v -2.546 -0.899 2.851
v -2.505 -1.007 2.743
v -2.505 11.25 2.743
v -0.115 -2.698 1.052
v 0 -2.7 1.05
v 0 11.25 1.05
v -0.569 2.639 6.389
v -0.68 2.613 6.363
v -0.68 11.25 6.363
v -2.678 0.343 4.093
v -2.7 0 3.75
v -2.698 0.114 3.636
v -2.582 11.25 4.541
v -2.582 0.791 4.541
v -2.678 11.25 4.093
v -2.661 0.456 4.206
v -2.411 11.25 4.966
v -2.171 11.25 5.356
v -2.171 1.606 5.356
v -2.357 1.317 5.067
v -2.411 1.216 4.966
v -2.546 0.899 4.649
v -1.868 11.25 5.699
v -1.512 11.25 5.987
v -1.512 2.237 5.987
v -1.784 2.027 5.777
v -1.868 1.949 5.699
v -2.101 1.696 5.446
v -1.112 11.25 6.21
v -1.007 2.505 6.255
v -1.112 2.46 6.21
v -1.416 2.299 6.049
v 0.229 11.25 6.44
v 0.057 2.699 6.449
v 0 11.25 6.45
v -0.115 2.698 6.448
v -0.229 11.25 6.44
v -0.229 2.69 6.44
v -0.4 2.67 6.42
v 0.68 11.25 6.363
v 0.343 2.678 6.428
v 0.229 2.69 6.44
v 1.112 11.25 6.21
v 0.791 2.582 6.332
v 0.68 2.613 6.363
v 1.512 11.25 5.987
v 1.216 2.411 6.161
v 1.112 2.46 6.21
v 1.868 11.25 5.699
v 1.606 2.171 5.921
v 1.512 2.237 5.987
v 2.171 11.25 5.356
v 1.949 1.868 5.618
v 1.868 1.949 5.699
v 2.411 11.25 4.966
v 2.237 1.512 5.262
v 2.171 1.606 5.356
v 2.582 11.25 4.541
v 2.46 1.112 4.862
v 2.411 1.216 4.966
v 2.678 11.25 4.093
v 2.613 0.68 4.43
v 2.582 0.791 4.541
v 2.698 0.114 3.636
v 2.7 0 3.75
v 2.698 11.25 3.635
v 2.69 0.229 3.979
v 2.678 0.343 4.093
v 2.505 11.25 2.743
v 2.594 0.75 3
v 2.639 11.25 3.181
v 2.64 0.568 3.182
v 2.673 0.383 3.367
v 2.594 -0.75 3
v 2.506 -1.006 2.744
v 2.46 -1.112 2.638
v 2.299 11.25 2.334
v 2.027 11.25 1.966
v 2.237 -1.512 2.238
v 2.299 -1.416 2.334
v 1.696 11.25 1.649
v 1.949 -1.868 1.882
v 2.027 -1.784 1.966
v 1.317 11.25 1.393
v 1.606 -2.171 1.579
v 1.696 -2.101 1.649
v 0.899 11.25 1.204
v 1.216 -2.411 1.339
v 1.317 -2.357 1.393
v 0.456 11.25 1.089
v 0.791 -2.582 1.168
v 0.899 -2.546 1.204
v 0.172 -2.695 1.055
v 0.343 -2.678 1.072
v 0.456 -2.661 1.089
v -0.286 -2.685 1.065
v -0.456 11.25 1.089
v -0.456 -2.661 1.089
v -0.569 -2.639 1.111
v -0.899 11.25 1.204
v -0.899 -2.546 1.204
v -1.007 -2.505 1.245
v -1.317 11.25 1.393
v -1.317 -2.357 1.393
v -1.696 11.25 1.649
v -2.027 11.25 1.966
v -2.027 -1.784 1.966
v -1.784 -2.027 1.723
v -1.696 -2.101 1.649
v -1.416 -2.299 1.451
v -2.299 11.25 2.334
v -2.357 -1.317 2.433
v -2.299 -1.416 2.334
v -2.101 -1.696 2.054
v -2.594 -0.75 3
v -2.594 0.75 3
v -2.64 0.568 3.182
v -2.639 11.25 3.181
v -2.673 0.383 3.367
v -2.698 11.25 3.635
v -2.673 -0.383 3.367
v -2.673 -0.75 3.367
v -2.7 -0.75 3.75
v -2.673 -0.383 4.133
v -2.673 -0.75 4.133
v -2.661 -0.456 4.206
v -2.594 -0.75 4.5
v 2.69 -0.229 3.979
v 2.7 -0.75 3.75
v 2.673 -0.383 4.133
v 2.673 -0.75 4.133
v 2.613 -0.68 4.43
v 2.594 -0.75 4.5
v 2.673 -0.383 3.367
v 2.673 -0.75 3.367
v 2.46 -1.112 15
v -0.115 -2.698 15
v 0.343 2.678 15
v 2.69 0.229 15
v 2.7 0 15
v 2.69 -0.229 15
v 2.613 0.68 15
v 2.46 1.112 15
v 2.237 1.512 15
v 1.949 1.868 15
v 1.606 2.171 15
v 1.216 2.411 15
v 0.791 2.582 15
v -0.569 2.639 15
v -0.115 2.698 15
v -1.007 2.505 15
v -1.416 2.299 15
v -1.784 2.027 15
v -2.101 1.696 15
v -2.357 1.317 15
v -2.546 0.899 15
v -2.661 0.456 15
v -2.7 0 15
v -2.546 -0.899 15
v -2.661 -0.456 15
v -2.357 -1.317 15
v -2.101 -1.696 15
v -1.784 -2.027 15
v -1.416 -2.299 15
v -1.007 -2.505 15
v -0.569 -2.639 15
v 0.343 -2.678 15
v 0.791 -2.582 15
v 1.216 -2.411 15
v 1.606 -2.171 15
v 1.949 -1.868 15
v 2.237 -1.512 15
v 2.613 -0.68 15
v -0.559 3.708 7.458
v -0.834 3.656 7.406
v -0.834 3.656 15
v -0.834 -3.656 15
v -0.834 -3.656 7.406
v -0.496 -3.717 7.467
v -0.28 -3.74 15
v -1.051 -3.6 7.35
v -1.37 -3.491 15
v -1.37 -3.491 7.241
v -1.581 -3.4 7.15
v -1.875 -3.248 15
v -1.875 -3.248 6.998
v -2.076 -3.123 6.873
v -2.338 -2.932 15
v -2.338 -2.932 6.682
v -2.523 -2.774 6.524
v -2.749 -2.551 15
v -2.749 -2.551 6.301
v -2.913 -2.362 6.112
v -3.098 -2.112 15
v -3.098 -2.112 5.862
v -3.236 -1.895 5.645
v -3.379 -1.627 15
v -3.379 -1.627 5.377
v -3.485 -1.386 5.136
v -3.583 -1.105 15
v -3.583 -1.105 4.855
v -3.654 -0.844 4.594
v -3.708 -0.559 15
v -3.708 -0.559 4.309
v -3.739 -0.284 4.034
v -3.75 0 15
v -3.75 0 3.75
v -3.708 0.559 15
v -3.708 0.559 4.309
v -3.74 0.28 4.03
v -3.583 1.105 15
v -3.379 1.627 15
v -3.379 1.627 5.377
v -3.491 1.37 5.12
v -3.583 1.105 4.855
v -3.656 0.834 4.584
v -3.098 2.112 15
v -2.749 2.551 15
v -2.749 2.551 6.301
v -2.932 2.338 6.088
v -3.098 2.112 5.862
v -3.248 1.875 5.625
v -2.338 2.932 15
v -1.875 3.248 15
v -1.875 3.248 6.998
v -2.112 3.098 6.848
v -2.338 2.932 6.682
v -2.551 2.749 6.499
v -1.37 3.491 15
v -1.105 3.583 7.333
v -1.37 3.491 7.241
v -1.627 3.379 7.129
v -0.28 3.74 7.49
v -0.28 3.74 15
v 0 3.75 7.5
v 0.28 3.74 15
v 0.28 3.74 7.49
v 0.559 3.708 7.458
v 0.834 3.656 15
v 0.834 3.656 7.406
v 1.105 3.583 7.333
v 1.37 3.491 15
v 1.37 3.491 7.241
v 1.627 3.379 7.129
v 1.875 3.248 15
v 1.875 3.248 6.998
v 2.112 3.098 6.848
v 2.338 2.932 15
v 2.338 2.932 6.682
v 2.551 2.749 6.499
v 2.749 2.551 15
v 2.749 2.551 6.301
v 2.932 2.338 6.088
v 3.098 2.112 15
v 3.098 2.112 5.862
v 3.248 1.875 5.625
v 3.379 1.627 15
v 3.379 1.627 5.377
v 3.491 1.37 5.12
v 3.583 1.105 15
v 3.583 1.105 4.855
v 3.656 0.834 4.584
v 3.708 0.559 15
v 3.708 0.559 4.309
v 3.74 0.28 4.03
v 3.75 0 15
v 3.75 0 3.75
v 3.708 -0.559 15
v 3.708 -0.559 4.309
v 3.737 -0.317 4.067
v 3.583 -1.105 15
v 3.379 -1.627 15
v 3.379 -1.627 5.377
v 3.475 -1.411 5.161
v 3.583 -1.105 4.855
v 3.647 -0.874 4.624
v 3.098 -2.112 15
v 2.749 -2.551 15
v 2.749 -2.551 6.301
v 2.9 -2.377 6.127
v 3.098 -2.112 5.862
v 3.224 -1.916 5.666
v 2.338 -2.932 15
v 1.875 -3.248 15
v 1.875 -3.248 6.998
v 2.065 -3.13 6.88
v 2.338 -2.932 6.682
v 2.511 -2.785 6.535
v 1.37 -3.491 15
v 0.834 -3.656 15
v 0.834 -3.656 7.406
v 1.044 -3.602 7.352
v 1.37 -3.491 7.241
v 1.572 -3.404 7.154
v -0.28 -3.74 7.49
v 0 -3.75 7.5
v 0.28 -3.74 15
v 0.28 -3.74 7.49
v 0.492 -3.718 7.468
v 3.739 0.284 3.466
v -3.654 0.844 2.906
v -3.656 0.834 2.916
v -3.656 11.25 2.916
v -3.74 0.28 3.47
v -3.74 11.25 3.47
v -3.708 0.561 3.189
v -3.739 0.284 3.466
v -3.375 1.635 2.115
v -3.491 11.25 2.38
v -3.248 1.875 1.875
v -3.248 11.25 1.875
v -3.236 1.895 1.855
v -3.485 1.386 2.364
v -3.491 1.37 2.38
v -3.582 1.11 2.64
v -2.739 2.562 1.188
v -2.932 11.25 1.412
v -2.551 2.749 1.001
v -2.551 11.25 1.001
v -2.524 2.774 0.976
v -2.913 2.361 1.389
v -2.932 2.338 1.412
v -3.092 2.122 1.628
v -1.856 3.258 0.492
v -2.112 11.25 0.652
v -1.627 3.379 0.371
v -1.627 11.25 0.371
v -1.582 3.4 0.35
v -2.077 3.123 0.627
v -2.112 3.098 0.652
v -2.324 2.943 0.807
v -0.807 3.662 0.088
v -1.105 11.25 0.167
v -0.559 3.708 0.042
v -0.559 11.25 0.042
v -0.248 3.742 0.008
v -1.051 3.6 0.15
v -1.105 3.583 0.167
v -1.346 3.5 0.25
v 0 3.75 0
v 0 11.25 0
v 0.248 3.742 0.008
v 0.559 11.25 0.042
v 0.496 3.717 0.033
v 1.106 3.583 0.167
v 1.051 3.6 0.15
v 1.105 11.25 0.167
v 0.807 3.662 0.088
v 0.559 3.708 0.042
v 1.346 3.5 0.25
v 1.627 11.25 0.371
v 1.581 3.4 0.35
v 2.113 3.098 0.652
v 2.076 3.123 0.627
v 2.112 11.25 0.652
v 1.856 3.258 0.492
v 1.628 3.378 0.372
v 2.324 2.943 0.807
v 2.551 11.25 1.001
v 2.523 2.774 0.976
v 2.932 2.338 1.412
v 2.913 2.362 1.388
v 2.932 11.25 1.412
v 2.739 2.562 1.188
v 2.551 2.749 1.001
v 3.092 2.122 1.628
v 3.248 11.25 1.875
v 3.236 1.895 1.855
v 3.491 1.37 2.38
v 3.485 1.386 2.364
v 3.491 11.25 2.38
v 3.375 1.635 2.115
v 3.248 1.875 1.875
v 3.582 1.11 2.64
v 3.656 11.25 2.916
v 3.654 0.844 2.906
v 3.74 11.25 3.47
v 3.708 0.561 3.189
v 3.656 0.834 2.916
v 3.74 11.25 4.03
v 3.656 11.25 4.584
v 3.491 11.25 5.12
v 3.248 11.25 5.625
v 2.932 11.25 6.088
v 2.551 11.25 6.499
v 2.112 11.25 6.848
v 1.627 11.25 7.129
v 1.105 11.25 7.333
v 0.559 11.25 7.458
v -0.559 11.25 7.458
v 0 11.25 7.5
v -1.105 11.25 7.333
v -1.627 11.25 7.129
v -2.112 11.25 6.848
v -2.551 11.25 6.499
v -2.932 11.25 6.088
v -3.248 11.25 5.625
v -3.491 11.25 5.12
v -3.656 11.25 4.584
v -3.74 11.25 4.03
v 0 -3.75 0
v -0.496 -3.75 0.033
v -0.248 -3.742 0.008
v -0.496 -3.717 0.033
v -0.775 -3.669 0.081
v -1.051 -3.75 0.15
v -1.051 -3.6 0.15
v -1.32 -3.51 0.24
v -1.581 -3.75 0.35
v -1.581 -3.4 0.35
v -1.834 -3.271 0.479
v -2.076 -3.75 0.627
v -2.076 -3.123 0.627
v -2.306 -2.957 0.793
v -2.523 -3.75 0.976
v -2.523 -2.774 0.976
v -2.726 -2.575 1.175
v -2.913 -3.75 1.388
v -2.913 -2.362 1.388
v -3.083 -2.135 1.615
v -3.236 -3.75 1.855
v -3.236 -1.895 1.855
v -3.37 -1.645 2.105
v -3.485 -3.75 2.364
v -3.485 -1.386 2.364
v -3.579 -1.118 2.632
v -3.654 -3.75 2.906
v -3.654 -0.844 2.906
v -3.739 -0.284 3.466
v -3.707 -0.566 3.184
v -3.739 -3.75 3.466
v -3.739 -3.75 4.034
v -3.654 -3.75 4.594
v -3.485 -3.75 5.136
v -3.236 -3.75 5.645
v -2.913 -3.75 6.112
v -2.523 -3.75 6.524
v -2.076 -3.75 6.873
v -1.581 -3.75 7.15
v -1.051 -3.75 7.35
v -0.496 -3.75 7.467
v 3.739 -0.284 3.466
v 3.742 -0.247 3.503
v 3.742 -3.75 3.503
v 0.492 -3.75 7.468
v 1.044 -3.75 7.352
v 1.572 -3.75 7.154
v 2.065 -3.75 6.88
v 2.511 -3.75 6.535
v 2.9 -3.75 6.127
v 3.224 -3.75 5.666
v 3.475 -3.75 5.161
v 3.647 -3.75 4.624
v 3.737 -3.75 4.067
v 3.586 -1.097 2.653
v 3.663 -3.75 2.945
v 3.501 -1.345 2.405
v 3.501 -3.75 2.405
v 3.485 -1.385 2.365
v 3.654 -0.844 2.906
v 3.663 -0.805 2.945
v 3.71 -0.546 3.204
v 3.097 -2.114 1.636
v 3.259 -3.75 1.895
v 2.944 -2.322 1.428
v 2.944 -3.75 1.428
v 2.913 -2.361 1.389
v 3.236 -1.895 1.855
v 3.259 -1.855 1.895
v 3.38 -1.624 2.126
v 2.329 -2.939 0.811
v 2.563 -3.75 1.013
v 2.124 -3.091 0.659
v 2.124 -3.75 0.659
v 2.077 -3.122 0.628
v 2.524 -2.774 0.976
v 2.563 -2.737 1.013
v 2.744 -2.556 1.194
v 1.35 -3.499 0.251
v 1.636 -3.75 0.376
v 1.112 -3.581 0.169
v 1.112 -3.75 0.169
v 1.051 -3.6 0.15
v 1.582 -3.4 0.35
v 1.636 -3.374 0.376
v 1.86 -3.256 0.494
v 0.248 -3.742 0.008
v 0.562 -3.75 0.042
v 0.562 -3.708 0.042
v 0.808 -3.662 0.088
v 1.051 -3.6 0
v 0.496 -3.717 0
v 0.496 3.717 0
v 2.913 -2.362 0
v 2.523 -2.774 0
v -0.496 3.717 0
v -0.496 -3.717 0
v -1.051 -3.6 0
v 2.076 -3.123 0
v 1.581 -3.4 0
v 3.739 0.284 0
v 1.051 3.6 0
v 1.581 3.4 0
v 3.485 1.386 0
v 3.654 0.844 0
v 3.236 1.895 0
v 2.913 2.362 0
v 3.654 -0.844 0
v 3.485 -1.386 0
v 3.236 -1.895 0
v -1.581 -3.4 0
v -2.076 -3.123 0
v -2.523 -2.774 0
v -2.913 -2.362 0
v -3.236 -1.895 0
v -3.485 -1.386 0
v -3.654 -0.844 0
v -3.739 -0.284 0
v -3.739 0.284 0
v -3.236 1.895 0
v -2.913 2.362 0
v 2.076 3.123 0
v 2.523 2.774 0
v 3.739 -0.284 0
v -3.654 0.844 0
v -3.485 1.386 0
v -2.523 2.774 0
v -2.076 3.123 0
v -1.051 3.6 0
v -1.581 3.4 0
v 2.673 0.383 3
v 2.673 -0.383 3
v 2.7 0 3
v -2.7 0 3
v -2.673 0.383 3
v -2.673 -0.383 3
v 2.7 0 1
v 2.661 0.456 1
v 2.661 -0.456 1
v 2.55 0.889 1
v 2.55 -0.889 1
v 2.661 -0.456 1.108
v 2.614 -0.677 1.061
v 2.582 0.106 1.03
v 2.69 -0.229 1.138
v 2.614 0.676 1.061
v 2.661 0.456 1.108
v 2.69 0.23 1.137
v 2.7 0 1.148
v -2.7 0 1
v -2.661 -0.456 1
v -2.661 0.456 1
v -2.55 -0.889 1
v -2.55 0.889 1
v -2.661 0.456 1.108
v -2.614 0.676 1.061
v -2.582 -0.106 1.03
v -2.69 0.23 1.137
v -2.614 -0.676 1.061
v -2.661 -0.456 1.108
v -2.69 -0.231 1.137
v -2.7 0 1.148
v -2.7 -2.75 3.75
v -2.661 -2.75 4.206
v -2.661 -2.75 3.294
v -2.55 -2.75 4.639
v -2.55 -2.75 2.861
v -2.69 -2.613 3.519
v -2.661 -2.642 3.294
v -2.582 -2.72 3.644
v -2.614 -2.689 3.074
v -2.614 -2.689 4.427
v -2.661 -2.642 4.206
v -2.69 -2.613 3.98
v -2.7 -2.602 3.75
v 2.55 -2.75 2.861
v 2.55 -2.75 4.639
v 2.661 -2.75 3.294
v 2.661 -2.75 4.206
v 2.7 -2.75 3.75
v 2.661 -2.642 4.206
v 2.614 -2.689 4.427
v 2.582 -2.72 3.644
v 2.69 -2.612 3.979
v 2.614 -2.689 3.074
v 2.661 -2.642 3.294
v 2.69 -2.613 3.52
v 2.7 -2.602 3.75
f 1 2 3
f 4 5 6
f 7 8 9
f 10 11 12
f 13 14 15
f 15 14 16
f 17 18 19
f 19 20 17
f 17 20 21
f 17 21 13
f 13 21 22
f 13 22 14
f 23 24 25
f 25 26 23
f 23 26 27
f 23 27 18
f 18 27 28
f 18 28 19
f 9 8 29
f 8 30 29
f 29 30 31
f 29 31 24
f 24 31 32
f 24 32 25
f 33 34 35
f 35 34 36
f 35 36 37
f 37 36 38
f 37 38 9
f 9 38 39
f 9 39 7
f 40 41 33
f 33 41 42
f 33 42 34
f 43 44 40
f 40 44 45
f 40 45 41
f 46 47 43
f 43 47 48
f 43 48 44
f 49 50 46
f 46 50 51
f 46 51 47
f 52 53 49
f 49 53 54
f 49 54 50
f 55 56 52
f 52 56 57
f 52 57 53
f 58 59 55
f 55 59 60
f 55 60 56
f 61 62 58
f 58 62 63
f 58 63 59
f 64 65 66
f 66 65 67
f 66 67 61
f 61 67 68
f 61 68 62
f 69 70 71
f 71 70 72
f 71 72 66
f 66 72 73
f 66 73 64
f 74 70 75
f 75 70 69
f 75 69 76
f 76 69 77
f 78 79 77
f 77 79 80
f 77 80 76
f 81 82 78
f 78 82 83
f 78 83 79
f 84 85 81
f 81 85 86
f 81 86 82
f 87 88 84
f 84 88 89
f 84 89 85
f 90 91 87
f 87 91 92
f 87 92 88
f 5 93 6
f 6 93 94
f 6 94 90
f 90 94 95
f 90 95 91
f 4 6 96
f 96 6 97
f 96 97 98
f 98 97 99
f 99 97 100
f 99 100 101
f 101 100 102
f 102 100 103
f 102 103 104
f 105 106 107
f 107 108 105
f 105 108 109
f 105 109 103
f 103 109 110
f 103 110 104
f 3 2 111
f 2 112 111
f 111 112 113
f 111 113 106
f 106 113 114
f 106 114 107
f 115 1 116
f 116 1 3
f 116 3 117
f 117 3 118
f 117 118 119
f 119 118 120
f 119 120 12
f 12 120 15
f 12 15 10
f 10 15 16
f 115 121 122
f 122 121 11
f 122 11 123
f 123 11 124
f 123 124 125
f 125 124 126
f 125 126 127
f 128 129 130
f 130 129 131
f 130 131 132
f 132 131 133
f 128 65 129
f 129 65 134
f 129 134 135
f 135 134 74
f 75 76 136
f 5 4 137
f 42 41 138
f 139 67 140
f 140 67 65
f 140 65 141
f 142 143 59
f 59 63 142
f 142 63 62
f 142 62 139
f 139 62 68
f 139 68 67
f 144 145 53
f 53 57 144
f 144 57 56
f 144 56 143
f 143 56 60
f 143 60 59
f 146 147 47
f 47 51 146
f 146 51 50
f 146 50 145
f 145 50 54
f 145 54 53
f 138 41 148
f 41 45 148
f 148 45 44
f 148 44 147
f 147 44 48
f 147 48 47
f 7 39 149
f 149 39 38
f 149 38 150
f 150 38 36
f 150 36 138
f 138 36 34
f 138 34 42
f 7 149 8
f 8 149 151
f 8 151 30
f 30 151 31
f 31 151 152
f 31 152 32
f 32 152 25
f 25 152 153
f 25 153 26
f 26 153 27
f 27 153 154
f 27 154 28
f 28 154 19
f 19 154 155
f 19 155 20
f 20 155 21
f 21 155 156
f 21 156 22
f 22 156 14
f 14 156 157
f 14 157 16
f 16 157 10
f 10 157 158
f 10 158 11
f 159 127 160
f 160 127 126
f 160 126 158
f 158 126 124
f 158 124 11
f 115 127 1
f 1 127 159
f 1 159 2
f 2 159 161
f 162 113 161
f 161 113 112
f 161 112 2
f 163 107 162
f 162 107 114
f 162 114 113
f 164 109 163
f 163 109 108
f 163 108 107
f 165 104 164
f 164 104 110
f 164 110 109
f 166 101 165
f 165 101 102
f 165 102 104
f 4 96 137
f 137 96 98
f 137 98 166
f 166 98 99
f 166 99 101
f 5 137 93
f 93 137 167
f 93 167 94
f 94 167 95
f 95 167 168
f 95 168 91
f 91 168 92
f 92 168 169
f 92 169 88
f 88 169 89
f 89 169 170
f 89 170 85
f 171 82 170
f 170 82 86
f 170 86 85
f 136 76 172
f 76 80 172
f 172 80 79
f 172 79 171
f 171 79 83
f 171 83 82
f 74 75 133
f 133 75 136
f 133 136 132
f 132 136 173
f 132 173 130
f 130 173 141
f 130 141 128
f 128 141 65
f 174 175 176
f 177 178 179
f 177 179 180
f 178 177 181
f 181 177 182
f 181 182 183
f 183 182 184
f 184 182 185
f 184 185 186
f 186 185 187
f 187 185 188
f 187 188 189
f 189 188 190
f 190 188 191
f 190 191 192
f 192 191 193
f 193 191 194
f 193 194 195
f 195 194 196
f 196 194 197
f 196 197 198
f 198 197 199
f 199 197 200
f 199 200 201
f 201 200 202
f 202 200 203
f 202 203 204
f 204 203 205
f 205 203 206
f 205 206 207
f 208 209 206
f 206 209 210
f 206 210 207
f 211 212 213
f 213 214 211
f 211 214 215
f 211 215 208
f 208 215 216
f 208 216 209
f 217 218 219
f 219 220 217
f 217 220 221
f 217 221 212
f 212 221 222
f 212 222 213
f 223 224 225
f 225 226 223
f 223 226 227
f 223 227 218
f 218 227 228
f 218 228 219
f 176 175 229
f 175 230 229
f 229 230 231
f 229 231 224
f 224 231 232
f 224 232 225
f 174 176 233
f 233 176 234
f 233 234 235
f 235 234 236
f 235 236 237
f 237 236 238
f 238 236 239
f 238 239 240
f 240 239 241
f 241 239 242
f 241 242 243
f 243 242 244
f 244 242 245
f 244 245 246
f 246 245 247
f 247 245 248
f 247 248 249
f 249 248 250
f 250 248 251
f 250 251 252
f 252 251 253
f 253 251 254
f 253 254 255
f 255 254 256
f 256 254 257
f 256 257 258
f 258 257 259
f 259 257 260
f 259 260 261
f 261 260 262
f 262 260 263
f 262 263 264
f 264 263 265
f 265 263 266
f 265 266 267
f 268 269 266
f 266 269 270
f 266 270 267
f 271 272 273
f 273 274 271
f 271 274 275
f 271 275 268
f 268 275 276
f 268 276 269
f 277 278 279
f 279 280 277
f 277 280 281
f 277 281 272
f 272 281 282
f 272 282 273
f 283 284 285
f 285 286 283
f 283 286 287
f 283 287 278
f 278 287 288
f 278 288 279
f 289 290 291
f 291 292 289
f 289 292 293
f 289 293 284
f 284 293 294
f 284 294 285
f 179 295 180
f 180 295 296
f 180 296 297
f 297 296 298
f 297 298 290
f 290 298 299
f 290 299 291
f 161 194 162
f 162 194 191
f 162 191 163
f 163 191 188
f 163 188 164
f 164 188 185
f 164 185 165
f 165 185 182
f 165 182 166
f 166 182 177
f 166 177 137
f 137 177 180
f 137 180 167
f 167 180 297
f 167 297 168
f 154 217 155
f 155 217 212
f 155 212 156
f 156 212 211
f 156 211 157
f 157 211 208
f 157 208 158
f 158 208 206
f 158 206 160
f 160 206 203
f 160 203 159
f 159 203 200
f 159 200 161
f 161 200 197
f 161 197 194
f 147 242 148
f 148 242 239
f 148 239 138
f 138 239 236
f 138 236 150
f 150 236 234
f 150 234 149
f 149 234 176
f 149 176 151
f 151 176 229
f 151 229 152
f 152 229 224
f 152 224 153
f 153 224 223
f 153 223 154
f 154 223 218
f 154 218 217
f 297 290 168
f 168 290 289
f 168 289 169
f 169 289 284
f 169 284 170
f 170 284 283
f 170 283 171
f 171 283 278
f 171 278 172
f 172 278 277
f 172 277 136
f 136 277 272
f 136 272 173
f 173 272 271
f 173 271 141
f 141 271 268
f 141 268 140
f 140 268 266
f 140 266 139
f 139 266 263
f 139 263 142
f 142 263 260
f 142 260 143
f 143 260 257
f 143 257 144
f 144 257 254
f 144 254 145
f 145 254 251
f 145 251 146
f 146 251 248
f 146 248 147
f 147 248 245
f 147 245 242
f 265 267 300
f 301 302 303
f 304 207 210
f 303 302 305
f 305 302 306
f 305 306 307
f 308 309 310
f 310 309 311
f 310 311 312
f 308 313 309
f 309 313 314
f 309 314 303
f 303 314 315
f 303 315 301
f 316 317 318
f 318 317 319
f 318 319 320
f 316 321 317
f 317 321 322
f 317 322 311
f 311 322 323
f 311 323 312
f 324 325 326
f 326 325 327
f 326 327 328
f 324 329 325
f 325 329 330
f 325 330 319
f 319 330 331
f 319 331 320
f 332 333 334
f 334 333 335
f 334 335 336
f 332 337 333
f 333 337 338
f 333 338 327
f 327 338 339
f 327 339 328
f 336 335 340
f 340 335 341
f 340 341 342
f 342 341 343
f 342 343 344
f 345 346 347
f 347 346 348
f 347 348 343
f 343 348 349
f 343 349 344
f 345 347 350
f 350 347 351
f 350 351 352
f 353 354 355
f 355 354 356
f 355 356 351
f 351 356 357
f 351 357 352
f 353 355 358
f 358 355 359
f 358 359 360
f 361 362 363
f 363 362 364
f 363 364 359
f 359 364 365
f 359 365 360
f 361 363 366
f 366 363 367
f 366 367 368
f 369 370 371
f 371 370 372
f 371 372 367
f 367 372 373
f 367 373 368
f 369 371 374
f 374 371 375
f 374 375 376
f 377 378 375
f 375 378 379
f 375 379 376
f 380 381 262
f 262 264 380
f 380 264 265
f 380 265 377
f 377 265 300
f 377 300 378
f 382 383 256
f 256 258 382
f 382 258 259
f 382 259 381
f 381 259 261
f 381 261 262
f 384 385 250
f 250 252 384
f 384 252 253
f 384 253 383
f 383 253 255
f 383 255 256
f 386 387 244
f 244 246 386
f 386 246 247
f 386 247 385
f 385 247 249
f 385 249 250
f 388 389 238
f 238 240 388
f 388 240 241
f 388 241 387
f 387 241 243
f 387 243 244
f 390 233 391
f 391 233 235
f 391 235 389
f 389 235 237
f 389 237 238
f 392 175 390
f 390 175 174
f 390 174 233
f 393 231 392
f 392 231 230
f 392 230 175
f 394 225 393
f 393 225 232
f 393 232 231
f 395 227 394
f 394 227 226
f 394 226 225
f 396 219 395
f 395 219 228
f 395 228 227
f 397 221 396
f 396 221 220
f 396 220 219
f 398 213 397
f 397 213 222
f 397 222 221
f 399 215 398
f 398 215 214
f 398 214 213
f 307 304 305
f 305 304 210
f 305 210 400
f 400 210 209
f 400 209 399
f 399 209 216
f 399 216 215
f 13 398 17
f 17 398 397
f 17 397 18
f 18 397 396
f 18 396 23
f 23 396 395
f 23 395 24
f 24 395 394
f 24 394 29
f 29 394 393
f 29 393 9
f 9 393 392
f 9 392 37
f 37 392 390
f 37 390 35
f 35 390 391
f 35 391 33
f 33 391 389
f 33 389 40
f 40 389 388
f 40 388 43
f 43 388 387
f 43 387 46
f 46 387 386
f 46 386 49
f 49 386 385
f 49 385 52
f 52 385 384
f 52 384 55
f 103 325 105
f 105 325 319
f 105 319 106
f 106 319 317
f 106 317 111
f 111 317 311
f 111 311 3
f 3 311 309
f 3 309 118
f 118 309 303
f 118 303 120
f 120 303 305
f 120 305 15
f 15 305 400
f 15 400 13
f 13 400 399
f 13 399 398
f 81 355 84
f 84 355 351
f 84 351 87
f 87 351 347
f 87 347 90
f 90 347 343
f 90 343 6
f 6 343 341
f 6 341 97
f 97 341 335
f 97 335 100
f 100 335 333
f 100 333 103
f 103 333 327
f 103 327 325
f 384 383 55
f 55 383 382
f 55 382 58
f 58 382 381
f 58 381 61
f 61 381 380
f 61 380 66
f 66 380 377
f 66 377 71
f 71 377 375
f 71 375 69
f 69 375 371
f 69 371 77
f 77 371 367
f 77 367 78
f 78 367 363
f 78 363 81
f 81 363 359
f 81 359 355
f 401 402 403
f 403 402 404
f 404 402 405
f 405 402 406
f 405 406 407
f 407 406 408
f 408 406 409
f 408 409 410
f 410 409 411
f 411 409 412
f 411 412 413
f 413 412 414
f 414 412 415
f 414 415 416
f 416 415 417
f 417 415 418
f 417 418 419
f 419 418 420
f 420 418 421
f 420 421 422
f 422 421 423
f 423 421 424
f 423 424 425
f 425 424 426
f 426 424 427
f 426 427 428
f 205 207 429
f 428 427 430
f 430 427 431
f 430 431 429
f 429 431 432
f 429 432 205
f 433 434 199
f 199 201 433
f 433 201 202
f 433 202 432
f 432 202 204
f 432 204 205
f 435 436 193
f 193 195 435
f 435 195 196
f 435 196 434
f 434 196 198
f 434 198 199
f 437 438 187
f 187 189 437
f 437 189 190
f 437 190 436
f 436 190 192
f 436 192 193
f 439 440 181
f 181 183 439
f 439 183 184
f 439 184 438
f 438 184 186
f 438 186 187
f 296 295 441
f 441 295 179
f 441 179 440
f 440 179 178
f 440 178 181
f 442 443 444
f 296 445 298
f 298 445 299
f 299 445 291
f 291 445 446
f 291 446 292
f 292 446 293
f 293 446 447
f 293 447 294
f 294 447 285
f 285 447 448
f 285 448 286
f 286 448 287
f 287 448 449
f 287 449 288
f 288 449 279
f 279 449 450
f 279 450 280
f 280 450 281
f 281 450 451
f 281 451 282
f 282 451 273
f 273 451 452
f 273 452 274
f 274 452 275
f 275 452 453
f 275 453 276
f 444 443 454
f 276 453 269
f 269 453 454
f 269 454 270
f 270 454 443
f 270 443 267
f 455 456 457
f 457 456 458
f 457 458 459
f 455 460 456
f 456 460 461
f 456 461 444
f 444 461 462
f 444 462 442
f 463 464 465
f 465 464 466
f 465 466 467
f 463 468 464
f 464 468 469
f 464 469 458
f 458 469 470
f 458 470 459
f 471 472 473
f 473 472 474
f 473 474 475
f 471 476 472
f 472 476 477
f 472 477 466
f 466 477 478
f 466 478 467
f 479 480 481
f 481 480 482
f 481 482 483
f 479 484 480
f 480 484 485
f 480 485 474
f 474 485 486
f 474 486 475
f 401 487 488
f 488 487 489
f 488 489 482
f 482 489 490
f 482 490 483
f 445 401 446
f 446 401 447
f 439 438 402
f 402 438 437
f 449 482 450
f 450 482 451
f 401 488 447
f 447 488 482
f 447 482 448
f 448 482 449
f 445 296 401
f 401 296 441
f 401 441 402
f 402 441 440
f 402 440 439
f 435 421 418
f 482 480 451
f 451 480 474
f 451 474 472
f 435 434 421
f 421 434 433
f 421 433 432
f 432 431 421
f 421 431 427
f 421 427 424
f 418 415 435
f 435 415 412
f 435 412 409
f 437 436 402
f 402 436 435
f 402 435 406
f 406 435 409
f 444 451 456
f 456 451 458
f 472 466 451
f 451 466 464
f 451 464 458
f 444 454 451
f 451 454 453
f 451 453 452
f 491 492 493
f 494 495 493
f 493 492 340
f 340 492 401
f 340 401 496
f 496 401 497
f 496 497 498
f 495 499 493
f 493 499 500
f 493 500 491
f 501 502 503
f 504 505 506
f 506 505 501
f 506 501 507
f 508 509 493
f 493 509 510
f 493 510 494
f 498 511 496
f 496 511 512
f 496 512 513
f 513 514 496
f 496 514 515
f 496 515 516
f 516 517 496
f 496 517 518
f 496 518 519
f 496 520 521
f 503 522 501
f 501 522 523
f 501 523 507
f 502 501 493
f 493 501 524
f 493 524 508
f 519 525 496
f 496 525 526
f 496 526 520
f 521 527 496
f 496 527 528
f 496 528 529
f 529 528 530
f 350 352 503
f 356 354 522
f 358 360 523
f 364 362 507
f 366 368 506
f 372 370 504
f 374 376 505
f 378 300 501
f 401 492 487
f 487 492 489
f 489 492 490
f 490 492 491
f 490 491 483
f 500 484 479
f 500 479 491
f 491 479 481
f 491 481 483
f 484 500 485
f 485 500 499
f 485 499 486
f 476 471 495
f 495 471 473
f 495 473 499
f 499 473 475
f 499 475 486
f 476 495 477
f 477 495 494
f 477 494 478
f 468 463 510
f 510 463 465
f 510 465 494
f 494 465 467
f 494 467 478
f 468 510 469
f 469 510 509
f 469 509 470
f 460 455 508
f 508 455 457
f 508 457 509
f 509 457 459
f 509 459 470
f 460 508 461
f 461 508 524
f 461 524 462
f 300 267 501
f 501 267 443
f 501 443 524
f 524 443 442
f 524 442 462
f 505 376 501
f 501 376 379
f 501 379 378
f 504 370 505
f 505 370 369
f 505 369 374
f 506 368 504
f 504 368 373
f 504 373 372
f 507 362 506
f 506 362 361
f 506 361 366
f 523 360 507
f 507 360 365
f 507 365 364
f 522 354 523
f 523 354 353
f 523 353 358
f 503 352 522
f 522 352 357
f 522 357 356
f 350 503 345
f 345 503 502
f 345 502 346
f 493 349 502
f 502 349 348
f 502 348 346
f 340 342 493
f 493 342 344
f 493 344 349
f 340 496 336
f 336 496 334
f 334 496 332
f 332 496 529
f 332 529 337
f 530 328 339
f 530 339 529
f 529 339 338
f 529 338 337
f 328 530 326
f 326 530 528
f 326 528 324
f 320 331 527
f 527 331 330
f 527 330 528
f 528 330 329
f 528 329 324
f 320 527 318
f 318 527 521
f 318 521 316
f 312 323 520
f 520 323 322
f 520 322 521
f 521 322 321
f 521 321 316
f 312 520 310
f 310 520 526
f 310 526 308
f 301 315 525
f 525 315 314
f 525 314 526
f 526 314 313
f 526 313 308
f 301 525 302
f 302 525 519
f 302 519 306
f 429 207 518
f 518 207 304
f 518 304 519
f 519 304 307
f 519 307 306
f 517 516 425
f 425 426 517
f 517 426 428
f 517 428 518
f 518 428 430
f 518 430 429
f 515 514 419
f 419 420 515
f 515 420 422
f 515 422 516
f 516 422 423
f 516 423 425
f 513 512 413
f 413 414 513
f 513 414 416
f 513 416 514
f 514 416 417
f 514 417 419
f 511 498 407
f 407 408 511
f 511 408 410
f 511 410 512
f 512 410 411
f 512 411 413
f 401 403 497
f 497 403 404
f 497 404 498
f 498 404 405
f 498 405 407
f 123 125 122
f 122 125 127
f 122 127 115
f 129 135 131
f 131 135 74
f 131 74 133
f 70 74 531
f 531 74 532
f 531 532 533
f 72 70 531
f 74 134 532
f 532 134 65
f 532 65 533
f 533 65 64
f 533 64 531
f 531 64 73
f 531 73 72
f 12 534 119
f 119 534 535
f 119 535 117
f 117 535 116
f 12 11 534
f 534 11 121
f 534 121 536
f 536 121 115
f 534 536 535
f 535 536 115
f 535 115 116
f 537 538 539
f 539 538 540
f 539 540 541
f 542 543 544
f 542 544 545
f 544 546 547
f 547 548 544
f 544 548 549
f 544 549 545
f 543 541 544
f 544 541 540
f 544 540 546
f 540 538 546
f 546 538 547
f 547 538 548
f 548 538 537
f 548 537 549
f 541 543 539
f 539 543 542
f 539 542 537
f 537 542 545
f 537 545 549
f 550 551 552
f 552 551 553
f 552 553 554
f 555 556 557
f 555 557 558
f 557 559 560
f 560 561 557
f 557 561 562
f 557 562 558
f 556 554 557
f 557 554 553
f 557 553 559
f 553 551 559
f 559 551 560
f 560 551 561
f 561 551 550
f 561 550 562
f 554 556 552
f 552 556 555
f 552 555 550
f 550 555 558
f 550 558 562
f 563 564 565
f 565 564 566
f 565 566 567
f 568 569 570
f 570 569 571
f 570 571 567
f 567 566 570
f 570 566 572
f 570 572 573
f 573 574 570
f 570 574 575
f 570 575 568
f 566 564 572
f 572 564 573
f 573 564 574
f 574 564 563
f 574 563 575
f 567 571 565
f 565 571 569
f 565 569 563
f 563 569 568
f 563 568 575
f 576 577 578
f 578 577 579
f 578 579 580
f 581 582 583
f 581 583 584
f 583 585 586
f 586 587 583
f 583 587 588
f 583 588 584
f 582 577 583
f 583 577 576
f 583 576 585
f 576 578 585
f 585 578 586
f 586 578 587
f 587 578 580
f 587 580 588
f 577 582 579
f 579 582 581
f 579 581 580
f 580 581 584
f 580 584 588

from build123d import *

# Parameters (mm, degrees)
SKETCH1_R            = 3.75
SKETCH1_R_2          = 2.7
BOSS_EXTRUDE1_DEPTH  = 15
BOSS_EXTRUDE7_START  = -3.75
SKETCH4_R            = 3.75
SKETCH4_R_2          = 2.7
BOSS_EXTRUDE7_DEPTH  = 15
SKETCH5_R            = 2.7
CUT_EXTRUDE1_DEPTH   = 15
SKETCH9_R            = 2.7
BOSS_EXTRUDE11_DEPTH = 1
SKETCH10_R           = 2.7
BOSS_EXTRUDE12_DEPTH = 1
CUT_EXTRUDE10_START  = -12
SKETCH11_R           = 2.7
CUT_EXTRUDE10_DEPTH  = 12
CUT_EXTRUDE11_START  = -12
SKETCH13_R           = 2.7
CUT_EXTRUDE11_DEPTH  = 12
CUT_EXTRUDE2_START   = 3.75
SKETCH6_R            = 2.7
CUT_EXTRUDE2_DEPTH   = 15
SKETCH8_R            = 2.7
BOSS_EXTRUDE9_DEPTH  = 1


with BuildPart() as part:
    # Sketch1 → Boss-Extrude1 (new body)
    with BuildSketch(Plane.XY):
        Circle(SKETCH1_R)
        Circle(SKETCH1_R_2, mode=Mode.SUBTRACT)
    extrude(amount=BOSS_EXTRUDE1_DEPTH)

    # Sketch4 → Boss-Extrude7 (add)
    with BuildSketch(Plane(origin=(0, 0, 0), x_dir=(1, 0, 0), z_dir=(0, 1, 0)).offset(BOSS_EXTRUDE7_START)):
        with Locations(Location((0, -3.75, 0), (0, 0, 90))):
            Circle(SKETCH4_R)
        with Locations(Location((0, -3.75, 0), (0, 0, 90))):
            Circle(SKETCH4_R_2, mode=Mode.SUBTRACT)
    extrude(amount=BOSS_EXTRUDE7_DEPTH)

    # Sketch5 → Cut-Extrude1 (cut)
    with BuildSketch(Plane(origin=(0, 0, 0), x_dir=(1, 0, 0), z_dir=(0, 1, 0))):
        with Locations((0, -3.75)):
            Circle(SKETCH5_R)
    extrude(amount=CUT_EXTRUDE1_DEPTH, mode=Mode.SUBTRACT)

    # Sketch9 → Boss-Extrude11 (add)
    with BuildSketch(Plane.XZ.offset(3.75)):
        with Locations((0, 3.75)):
            Circle(SKETCH9_R)
    extrude(amount=-BOSS_EXTRUDE11_DEPTH)

    # Sketch10 → Boss-Extrude12 (add)
    with BuildSketch(Plane(origin=(0, 0, 0), x_dir=(-1, 0, 0), z_dir=(0, 0, -1))):
        Circle(SKETCH10_R)
    extrude(amount=-BOSS_EXTRUDE12_DEPTH)

    # Sketch11 → Cut-Extrude10 (cut)
    with BuildSketch(Plane(origin=(0, 11.25, 0), x_dir=(1, 0, 0), z_dir=(0, 1, 0)).offset(CUT_EXTRUDE10_START)):
        with Locations(Location((0, -3.75, 0), (0, 0, 163.872379787))):
            Circle(SKETCH11_R)
    extrude(amount=CUT_EXTRUDE10_DEPTH, mode=Mode.SUBTRACT)

    # Sketch13 → Cut-Extrude11 (cut)
    with BuildSketch(Plane.XY.offset(15).offset(CUT_EXTRUDE11_START)):
        Circle(SKETCH13_R)
    extrude(amount=CUT_EXTRUDE11_DEPTH, mode=Mode.SUBTRACT)

    # Sketch6 → Cut-Extrude2 (cut)
    with BuildSketch(Plane.XY.offset(CUT_EXTRUDE2_START)):
        Circle(SKETCH6_R)
    extrude(amount=CUT_EXTRUDE2_DEPTH, mode=Mode.SUBTRACT)

    # Sketch8 → Boss-Extrude9 (add)
    with BuildSketch(Plane(origin=(0, 0, 0), x_dir=(-1, 0, 0), z_dir=(0, 0, -1))):
        with Locations(Location((0, 0, 0), (0, 0, 180))):
            Circle(SKETCH8_R)
    extrude(amount=-BOSS_EXTRUDE9_DEPTH)


solid = part.part
